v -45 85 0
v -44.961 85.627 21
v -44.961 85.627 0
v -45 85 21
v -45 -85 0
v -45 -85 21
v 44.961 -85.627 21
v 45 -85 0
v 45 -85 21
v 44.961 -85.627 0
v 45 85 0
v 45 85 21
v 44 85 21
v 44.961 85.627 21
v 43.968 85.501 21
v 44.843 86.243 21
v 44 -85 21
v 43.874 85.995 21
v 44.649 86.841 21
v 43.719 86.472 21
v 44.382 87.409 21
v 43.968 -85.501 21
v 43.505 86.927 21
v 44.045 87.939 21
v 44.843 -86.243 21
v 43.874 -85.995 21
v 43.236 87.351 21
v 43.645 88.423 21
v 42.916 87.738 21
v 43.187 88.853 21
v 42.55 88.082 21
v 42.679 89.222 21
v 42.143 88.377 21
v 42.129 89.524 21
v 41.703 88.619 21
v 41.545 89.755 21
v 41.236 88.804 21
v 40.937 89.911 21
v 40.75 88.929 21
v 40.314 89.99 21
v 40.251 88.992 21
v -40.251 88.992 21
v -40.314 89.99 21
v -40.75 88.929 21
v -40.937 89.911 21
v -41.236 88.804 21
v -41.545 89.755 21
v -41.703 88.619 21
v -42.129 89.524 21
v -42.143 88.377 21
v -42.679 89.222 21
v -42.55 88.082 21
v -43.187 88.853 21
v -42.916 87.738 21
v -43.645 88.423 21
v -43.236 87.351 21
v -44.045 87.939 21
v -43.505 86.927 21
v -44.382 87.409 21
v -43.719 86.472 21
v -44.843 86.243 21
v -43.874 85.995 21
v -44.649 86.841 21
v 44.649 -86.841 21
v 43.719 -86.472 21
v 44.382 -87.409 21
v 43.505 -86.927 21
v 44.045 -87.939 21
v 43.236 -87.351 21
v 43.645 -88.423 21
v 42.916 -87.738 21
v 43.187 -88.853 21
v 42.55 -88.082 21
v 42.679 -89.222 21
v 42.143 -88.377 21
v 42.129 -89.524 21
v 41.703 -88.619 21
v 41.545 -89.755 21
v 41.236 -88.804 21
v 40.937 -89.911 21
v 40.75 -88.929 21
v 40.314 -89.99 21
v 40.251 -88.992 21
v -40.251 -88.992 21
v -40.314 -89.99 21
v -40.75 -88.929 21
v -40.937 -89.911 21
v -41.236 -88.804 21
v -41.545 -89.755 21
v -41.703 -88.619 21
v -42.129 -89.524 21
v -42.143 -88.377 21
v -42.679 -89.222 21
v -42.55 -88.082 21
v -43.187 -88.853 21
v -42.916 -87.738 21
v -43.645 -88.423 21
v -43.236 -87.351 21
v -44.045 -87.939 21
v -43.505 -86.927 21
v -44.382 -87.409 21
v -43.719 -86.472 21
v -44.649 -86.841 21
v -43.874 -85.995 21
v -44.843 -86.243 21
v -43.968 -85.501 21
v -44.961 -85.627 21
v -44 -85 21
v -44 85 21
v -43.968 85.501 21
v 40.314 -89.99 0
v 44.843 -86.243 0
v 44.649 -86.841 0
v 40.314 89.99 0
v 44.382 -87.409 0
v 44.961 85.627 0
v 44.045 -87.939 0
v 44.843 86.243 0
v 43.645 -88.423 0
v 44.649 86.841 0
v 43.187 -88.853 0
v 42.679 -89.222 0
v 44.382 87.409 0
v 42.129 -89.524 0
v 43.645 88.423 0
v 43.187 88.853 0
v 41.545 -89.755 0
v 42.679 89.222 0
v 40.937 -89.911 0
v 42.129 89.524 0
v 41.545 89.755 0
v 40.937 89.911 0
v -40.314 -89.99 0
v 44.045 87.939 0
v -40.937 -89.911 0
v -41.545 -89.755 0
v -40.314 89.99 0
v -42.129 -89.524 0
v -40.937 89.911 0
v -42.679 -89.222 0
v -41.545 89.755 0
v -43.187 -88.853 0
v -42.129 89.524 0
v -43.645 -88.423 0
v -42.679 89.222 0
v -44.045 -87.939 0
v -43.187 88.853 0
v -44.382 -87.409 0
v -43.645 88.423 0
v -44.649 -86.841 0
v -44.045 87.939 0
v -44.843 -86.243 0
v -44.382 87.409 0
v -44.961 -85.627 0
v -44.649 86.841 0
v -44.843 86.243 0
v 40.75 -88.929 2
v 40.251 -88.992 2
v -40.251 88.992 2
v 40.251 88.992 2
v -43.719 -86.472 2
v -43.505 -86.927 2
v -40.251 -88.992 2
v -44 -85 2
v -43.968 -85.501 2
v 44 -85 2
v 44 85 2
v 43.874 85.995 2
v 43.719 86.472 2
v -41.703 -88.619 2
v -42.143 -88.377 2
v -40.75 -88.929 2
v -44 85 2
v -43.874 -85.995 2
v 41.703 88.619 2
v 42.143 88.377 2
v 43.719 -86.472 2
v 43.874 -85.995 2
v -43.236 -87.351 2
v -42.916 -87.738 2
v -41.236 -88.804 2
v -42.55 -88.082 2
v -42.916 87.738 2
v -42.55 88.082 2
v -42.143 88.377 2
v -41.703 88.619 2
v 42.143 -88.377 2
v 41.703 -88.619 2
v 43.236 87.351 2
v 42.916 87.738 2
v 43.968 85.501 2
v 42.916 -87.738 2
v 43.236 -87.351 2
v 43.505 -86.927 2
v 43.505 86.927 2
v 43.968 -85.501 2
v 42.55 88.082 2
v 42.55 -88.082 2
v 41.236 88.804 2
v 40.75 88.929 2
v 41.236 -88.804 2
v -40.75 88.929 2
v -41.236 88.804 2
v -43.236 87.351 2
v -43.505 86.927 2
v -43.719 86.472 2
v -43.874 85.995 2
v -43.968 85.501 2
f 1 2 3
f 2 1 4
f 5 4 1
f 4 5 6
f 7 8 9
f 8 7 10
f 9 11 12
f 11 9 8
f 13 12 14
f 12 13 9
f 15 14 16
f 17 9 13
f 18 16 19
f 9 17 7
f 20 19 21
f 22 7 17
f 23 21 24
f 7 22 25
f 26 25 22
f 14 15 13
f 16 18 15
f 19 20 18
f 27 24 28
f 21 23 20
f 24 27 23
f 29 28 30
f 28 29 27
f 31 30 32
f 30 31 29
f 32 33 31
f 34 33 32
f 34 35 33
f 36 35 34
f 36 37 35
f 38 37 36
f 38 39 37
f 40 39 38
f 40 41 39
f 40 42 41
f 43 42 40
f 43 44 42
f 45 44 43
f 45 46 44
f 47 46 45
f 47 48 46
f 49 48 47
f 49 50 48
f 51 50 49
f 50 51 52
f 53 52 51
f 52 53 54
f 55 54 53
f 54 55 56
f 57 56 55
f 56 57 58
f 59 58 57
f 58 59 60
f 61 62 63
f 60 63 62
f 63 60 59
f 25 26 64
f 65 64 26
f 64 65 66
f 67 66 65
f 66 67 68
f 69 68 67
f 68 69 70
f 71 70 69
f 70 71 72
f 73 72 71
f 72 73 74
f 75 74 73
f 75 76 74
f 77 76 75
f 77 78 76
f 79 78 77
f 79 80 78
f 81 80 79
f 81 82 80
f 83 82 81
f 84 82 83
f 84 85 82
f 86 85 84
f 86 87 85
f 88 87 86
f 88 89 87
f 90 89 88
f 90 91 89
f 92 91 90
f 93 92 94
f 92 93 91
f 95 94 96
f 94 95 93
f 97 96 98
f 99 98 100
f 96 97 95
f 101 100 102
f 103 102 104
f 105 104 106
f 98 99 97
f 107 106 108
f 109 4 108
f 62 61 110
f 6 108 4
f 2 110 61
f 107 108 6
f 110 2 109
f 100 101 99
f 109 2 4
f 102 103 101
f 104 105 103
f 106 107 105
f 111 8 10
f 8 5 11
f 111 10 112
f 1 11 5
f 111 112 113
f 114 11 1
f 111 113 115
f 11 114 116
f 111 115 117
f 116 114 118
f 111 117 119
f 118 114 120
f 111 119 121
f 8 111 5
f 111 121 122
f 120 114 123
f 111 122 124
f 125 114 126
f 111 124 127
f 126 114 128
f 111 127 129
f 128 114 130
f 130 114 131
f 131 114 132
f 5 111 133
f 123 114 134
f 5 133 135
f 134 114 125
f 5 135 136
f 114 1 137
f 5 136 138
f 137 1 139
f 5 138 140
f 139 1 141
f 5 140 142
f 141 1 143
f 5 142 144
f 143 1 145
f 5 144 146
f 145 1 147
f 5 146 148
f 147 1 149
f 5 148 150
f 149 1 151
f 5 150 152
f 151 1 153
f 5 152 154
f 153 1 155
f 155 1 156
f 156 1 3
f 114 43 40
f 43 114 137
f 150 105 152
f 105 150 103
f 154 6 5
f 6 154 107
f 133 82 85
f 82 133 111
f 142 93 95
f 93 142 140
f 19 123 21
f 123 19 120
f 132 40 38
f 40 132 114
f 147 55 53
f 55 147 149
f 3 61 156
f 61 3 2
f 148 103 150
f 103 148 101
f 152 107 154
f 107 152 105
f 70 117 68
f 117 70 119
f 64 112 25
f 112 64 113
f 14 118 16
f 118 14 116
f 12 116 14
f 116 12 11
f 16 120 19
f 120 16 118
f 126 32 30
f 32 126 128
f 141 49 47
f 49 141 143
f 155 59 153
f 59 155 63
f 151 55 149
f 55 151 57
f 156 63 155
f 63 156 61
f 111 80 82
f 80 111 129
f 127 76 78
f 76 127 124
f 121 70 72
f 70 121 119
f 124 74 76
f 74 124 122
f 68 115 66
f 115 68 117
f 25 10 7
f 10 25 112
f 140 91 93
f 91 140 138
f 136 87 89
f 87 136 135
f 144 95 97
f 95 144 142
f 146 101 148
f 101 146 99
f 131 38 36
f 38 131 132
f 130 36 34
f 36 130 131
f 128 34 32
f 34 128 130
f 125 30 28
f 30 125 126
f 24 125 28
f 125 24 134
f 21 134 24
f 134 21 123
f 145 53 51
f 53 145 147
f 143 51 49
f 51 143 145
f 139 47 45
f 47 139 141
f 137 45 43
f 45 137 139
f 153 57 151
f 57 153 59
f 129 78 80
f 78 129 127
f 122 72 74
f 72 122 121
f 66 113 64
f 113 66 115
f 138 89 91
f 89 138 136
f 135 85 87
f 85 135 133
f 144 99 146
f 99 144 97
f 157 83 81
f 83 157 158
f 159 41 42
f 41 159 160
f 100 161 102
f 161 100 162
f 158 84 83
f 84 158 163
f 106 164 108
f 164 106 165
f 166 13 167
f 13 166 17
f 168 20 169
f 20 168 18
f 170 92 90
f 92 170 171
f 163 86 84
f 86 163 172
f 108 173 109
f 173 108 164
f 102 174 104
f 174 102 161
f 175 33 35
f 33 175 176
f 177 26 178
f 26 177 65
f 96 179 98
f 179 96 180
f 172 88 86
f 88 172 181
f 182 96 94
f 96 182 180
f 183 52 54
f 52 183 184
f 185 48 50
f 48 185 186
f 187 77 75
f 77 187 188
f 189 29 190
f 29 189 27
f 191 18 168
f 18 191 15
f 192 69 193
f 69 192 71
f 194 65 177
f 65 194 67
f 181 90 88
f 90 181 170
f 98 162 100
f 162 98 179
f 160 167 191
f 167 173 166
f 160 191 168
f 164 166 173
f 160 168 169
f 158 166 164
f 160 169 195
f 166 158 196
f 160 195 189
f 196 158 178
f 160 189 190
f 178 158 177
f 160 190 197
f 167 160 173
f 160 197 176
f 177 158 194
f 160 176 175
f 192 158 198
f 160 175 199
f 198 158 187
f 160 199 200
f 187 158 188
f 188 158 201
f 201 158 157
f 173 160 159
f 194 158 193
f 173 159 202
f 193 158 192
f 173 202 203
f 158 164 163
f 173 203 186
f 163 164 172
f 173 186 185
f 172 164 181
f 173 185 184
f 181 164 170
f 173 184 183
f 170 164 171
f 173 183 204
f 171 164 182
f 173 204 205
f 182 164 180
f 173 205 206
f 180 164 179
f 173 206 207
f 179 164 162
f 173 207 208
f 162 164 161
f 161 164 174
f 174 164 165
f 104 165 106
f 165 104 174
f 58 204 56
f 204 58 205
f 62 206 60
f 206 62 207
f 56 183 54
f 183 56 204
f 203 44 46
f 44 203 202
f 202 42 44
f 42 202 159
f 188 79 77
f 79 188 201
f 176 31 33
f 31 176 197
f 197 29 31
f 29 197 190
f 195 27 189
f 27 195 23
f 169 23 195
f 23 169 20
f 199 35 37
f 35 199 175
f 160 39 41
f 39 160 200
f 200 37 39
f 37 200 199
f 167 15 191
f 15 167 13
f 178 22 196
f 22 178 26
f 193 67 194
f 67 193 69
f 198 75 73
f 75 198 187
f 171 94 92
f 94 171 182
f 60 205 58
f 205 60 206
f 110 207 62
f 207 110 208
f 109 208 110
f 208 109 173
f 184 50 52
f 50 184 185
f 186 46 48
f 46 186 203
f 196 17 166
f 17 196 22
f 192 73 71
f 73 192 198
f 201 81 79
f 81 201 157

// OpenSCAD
$fn = 50;


difference() {
	union() {
		hull() {
			translate(v = [-40.0000000000, 85.0000000000, 0]) {
				cylinder(h = 21, r = 5);
			}
			translate(v = [40.0000000000, 85.0000000000, 0]) {
				cylinder(h = 21, r = 5);
			}
			translate(v = [-40.0000000000, -85.0000000000, 0]) {
				cylinder(h = 21, r = 5);
			}
			translate(v = [40.0000000000, -85.0000000000, 0]) {
				cylinder(h = 21, r = 5);
			}
		}
	}
	union() {
		translate(v = [0, 0, 2]) {
			hull() {
				translate(v = [-40.0000000000, 85.0000000000, 0]) {
					cylinder(h = 19, r = 4);
				}
				translate(v = [40.0000000000, 85.0000000000, 0]) {
					cylinder(h = 19, r = 4);
				}
				translate(v = [-40.0000000000, -85.0000000000, 0]) {
					cylinder(h = 19, r = 4);
				}
				translate(v = [40.0000000000, -85.0000000000, 0]) {
					cylinder(h = 19, r = 4);
				}
			}
		}
	}
}
